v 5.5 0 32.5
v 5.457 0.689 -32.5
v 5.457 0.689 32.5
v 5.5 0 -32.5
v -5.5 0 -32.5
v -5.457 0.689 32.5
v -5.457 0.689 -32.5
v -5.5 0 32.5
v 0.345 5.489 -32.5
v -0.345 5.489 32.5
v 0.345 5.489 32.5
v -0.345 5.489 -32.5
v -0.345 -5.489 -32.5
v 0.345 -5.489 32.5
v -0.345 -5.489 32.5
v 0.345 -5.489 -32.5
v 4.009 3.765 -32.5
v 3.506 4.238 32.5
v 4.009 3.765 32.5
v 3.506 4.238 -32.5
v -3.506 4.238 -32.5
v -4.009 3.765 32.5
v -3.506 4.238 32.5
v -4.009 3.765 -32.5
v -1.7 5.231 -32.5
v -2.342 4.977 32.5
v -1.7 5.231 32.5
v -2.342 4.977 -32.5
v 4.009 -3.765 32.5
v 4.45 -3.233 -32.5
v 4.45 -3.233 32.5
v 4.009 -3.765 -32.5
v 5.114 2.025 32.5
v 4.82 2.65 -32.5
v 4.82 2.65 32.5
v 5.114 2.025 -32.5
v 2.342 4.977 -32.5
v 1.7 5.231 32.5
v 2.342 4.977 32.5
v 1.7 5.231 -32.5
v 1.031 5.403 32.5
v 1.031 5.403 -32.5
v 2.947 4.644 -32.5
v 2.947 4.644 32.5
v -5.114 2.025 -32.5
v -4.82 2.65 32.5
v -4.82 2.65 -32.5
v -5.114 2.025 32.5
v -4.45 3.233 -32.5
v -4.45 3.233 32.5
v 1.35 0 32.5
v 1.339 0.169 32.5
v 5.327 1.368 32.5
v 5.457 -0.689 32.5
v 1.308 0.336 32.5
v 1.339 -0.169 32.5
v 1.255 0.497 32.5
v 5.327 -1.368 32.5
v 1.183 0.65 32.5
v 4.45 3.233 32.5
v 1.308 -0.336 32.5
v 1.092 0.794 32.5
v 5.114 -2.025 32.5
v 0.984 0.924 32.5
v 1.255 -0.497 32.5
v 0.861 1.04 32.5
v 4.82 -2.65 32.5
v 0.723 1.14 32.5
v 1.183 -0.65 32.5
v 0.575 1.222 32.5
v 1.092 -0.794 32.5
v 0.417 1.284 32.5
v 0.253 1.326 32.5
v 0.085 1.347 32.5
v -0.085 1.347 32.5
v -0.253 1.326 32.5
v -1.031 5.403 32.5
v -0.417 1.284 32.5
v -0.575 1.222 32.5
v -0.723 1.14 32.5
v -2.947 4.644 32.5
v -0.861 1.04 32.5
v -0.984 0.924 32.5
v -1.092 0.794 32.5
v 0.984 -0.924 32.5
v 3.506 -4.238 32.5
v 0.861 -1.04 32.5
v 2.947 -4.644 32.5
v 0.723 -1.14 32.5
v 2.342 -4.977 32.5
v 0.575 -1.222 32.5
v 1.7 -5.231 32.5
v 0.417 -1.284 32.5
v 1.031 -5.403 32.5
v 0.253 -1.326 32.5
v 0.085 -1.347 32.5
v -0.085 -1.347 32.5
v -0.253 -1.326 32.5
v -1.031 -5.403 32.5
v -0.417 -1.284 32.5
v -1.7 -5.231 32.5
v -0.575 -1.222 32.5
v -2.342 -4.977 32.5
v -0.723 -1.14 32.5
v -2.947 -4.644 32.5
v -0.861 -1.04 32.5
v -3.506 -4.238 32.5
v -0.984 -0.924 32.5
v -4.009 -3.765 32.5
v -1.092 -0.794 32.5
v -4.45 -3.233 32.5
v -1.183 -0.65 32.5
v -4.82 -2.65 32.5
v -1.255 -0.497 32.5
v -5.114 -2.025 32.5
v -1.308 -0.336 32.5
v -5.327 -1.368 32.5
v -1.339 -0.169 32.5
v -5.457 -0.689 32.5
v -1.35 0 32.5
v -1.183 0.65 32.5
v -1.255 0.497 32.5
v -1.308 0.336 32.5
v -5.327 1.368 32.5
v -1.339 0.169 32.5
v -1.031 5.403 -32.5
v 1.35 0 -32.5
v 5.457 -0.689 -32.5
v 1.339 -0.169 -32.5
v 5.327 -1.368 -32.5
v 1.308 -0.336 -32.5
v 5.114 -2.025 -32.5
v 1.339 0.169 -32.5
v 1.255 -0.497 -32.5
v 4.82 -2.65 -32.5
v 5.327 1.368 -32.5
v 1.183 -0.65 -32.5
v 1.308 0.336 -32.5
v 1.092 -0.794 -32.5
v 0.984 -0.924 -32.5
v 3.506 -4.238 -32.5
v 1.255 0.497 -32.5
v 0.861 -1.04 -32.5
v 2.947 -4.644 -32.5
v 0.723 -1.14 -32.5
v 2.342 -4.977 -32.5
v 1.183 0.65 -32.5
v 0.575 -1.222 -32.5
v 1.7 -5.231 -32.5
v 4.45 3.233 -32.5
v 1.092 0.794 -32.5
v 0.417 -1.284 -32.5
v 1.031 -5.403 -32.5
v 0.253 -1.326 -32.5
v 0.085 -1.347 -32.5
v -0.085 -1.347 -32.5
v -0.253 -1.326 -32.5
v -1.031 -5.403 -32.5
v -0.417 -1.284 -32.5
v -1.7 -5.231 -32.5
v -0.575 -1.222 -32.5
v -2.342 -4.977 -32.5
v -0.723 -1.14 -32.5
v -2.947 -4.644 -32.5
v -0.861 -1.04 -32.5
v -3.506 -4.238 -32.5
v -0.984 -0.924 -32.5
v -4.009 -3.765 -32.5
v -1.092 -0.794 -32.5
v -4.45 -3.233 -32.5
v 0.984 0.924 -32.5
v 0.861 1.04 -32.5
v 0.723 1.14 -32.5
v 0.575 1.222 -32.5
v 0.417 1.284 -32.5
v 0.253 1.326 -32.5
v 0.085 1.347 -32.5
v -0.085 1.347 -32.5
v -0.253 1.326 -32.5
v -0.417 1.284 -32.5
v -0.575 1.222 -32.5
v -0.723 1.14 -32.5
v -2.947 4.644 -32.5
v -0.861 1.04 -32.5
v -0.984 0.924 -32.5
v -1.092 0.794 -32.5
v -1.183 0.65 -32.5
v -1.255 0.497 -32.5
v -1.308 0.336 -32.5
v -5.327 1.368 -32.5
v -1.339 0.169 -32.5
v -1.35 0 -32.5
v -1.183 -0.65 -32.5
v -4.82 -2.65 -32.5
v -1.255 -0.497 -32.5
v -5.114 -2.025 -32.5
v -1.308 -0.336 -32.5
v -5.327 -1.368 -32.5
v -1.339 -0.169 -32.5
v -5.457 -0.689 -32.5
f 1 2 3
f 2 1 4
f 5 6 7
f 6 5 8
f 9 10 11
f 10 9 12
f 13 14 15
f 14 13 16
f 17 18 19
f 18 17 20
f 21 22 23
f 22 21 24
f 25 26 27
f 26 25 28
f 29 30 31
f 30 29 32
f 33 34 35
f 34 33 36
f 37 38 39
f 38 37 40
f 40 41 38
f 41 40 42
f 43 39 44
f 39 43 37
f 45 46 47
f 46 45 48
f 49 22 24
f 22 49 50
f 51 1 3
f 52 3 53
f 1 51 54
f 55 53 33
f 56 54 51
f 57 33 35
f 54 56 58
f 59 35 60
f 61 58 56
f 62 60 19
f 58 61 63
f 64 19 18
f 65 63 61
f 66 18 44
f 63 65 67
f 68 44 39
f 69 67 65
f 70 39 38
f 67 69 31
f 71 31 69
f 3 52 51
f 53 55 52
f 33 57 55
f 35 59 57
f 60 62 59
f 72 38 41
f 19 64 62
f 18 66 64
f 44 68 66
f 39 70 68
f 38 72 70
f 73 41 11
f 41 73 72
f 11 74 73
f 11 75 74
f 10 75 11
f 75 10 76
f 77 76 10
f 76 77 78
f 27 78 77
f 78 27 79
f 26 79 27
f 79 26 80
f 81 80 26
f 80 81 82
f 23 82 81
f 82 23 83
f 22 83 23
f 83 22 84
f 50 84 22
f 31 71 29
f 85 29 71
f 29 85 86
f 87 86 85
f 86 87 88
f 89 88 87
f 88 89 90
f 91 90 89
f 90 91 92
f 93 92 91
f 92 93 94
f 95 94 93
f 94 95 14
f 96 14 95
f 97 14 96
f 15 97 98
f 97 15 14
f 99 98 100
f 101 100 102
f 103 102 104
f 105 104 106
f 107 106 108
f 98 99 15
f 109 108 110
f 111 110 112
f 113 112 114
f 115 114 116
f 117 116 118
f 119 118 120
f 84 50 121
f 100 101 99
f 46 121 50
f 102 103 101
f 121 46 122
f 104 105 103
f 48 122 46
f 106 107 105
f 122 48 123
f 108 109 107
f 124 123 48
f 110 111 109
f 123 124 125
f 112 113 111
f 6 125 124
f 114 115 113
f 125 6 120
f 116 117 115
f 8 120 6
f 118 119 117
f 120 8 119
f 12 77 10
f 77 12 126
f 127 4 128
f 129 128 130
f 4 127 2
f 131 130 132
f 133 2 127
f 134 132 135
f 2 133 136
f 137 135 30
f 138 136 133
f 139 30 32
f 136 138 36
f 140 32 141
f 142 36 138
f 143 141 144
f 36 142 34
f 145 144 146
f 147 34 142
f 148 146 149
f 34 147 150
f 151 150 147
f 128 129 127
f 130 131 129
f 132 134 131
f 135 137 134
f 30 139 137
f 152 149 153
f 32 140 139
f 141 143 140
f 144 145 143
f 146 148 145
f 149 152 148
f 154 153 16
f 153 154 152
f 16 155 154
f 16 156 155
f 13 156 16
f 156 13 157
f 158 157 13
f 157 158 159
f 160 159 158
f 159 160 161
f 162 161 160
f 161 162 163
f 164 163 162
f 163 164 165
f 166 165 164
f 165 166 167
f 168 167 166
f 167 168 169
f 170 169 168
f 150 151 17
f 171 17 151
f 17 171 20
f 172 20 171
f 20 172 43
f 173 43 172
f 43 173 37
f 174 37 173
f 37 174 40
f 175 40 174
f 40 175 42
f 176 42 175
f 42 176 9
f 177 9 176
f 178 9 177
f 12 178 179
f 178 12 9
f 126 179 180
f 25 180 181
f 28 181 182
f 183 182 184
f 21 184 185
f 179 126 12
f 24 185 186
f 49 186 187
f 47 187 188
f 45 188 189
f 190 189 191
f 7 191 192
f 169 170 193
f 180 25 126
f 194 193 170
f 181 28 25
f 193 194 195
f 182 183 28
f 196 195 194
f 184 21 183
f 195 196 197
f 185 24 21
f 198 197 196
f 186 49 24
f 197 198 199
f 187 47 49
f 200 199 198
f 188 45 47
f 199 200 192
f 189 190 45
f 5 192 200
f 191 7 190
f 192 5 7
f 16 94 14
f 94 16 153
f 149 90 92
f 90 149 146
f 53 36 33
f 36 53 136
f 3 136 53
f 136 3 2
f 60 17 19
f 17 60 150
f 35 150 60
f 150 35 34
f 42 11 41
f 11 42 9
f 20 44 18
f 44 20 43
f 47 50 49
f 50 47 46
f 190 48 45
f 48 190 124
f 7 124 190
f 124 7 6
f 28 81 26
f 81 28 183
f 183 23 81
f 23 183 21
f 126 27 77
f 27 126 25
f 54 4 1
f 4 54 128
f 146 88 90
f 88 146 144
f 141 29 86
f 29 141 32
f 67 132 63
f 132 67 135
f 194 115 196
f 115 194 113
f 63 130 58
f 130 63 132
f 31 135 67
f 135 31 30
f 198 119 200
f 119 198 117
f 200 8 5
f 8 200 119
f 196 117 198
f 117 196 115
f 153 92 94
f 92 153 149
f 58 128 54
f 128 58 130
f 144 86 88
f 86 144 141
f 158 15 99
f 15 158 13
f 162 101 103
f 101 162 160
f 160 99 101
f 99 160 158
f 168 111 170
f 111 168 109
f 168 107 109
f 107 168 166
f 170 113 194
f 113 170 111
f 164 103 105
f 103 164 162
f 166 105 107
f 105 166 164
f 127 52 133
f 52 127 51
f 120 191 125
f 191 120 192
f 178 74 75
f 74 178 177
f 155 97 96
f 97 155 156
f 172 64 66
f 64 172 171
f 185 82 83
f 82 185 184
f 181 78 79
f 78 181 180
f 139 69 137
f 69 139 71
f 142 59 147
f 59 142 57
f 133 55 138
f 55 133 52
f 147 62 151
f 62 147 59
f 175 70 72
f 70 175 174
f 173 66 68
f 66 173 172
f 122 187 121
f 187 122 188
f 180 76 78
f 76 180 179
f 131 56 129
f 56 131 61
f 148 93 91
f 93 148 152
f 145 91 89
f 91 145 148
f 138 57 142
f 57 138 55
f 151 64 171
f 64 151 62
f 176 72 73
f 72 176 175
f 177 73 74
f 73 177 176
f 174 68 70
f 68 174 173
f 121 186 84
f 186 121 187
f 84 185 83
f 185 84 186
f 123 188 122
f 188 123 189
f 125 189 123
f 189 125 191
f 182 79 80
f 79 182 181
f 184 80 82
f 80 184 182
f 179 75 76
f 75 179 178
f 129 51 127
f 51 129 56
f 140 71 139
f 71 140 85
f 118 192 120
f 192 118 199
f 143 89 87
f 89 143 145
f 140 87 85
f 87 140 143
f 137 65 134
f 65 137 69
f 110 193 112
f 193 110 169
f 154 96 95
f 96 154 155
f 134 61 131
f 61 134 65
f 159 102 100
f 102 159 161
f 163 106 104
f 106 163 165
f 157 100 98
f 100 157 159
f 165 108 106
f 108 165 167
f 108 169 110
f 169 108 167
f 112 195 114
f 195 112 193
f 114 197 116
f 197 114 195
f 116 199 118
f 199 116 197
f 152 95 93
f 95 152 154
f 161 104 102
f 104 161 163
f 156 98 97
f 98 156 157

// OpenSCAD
$fn = 50;


difference() {
	union() {
		translate(v = [0, 0, -32.5000000000]) {
			cylinder(h = 65, r = 5.5000000000);
		}
	}
	union() {
		translate(v = [0, 0, -100.0000000000]) {
			cylinder(h = 200, r = 1.3500000000);
		}
	}
}
